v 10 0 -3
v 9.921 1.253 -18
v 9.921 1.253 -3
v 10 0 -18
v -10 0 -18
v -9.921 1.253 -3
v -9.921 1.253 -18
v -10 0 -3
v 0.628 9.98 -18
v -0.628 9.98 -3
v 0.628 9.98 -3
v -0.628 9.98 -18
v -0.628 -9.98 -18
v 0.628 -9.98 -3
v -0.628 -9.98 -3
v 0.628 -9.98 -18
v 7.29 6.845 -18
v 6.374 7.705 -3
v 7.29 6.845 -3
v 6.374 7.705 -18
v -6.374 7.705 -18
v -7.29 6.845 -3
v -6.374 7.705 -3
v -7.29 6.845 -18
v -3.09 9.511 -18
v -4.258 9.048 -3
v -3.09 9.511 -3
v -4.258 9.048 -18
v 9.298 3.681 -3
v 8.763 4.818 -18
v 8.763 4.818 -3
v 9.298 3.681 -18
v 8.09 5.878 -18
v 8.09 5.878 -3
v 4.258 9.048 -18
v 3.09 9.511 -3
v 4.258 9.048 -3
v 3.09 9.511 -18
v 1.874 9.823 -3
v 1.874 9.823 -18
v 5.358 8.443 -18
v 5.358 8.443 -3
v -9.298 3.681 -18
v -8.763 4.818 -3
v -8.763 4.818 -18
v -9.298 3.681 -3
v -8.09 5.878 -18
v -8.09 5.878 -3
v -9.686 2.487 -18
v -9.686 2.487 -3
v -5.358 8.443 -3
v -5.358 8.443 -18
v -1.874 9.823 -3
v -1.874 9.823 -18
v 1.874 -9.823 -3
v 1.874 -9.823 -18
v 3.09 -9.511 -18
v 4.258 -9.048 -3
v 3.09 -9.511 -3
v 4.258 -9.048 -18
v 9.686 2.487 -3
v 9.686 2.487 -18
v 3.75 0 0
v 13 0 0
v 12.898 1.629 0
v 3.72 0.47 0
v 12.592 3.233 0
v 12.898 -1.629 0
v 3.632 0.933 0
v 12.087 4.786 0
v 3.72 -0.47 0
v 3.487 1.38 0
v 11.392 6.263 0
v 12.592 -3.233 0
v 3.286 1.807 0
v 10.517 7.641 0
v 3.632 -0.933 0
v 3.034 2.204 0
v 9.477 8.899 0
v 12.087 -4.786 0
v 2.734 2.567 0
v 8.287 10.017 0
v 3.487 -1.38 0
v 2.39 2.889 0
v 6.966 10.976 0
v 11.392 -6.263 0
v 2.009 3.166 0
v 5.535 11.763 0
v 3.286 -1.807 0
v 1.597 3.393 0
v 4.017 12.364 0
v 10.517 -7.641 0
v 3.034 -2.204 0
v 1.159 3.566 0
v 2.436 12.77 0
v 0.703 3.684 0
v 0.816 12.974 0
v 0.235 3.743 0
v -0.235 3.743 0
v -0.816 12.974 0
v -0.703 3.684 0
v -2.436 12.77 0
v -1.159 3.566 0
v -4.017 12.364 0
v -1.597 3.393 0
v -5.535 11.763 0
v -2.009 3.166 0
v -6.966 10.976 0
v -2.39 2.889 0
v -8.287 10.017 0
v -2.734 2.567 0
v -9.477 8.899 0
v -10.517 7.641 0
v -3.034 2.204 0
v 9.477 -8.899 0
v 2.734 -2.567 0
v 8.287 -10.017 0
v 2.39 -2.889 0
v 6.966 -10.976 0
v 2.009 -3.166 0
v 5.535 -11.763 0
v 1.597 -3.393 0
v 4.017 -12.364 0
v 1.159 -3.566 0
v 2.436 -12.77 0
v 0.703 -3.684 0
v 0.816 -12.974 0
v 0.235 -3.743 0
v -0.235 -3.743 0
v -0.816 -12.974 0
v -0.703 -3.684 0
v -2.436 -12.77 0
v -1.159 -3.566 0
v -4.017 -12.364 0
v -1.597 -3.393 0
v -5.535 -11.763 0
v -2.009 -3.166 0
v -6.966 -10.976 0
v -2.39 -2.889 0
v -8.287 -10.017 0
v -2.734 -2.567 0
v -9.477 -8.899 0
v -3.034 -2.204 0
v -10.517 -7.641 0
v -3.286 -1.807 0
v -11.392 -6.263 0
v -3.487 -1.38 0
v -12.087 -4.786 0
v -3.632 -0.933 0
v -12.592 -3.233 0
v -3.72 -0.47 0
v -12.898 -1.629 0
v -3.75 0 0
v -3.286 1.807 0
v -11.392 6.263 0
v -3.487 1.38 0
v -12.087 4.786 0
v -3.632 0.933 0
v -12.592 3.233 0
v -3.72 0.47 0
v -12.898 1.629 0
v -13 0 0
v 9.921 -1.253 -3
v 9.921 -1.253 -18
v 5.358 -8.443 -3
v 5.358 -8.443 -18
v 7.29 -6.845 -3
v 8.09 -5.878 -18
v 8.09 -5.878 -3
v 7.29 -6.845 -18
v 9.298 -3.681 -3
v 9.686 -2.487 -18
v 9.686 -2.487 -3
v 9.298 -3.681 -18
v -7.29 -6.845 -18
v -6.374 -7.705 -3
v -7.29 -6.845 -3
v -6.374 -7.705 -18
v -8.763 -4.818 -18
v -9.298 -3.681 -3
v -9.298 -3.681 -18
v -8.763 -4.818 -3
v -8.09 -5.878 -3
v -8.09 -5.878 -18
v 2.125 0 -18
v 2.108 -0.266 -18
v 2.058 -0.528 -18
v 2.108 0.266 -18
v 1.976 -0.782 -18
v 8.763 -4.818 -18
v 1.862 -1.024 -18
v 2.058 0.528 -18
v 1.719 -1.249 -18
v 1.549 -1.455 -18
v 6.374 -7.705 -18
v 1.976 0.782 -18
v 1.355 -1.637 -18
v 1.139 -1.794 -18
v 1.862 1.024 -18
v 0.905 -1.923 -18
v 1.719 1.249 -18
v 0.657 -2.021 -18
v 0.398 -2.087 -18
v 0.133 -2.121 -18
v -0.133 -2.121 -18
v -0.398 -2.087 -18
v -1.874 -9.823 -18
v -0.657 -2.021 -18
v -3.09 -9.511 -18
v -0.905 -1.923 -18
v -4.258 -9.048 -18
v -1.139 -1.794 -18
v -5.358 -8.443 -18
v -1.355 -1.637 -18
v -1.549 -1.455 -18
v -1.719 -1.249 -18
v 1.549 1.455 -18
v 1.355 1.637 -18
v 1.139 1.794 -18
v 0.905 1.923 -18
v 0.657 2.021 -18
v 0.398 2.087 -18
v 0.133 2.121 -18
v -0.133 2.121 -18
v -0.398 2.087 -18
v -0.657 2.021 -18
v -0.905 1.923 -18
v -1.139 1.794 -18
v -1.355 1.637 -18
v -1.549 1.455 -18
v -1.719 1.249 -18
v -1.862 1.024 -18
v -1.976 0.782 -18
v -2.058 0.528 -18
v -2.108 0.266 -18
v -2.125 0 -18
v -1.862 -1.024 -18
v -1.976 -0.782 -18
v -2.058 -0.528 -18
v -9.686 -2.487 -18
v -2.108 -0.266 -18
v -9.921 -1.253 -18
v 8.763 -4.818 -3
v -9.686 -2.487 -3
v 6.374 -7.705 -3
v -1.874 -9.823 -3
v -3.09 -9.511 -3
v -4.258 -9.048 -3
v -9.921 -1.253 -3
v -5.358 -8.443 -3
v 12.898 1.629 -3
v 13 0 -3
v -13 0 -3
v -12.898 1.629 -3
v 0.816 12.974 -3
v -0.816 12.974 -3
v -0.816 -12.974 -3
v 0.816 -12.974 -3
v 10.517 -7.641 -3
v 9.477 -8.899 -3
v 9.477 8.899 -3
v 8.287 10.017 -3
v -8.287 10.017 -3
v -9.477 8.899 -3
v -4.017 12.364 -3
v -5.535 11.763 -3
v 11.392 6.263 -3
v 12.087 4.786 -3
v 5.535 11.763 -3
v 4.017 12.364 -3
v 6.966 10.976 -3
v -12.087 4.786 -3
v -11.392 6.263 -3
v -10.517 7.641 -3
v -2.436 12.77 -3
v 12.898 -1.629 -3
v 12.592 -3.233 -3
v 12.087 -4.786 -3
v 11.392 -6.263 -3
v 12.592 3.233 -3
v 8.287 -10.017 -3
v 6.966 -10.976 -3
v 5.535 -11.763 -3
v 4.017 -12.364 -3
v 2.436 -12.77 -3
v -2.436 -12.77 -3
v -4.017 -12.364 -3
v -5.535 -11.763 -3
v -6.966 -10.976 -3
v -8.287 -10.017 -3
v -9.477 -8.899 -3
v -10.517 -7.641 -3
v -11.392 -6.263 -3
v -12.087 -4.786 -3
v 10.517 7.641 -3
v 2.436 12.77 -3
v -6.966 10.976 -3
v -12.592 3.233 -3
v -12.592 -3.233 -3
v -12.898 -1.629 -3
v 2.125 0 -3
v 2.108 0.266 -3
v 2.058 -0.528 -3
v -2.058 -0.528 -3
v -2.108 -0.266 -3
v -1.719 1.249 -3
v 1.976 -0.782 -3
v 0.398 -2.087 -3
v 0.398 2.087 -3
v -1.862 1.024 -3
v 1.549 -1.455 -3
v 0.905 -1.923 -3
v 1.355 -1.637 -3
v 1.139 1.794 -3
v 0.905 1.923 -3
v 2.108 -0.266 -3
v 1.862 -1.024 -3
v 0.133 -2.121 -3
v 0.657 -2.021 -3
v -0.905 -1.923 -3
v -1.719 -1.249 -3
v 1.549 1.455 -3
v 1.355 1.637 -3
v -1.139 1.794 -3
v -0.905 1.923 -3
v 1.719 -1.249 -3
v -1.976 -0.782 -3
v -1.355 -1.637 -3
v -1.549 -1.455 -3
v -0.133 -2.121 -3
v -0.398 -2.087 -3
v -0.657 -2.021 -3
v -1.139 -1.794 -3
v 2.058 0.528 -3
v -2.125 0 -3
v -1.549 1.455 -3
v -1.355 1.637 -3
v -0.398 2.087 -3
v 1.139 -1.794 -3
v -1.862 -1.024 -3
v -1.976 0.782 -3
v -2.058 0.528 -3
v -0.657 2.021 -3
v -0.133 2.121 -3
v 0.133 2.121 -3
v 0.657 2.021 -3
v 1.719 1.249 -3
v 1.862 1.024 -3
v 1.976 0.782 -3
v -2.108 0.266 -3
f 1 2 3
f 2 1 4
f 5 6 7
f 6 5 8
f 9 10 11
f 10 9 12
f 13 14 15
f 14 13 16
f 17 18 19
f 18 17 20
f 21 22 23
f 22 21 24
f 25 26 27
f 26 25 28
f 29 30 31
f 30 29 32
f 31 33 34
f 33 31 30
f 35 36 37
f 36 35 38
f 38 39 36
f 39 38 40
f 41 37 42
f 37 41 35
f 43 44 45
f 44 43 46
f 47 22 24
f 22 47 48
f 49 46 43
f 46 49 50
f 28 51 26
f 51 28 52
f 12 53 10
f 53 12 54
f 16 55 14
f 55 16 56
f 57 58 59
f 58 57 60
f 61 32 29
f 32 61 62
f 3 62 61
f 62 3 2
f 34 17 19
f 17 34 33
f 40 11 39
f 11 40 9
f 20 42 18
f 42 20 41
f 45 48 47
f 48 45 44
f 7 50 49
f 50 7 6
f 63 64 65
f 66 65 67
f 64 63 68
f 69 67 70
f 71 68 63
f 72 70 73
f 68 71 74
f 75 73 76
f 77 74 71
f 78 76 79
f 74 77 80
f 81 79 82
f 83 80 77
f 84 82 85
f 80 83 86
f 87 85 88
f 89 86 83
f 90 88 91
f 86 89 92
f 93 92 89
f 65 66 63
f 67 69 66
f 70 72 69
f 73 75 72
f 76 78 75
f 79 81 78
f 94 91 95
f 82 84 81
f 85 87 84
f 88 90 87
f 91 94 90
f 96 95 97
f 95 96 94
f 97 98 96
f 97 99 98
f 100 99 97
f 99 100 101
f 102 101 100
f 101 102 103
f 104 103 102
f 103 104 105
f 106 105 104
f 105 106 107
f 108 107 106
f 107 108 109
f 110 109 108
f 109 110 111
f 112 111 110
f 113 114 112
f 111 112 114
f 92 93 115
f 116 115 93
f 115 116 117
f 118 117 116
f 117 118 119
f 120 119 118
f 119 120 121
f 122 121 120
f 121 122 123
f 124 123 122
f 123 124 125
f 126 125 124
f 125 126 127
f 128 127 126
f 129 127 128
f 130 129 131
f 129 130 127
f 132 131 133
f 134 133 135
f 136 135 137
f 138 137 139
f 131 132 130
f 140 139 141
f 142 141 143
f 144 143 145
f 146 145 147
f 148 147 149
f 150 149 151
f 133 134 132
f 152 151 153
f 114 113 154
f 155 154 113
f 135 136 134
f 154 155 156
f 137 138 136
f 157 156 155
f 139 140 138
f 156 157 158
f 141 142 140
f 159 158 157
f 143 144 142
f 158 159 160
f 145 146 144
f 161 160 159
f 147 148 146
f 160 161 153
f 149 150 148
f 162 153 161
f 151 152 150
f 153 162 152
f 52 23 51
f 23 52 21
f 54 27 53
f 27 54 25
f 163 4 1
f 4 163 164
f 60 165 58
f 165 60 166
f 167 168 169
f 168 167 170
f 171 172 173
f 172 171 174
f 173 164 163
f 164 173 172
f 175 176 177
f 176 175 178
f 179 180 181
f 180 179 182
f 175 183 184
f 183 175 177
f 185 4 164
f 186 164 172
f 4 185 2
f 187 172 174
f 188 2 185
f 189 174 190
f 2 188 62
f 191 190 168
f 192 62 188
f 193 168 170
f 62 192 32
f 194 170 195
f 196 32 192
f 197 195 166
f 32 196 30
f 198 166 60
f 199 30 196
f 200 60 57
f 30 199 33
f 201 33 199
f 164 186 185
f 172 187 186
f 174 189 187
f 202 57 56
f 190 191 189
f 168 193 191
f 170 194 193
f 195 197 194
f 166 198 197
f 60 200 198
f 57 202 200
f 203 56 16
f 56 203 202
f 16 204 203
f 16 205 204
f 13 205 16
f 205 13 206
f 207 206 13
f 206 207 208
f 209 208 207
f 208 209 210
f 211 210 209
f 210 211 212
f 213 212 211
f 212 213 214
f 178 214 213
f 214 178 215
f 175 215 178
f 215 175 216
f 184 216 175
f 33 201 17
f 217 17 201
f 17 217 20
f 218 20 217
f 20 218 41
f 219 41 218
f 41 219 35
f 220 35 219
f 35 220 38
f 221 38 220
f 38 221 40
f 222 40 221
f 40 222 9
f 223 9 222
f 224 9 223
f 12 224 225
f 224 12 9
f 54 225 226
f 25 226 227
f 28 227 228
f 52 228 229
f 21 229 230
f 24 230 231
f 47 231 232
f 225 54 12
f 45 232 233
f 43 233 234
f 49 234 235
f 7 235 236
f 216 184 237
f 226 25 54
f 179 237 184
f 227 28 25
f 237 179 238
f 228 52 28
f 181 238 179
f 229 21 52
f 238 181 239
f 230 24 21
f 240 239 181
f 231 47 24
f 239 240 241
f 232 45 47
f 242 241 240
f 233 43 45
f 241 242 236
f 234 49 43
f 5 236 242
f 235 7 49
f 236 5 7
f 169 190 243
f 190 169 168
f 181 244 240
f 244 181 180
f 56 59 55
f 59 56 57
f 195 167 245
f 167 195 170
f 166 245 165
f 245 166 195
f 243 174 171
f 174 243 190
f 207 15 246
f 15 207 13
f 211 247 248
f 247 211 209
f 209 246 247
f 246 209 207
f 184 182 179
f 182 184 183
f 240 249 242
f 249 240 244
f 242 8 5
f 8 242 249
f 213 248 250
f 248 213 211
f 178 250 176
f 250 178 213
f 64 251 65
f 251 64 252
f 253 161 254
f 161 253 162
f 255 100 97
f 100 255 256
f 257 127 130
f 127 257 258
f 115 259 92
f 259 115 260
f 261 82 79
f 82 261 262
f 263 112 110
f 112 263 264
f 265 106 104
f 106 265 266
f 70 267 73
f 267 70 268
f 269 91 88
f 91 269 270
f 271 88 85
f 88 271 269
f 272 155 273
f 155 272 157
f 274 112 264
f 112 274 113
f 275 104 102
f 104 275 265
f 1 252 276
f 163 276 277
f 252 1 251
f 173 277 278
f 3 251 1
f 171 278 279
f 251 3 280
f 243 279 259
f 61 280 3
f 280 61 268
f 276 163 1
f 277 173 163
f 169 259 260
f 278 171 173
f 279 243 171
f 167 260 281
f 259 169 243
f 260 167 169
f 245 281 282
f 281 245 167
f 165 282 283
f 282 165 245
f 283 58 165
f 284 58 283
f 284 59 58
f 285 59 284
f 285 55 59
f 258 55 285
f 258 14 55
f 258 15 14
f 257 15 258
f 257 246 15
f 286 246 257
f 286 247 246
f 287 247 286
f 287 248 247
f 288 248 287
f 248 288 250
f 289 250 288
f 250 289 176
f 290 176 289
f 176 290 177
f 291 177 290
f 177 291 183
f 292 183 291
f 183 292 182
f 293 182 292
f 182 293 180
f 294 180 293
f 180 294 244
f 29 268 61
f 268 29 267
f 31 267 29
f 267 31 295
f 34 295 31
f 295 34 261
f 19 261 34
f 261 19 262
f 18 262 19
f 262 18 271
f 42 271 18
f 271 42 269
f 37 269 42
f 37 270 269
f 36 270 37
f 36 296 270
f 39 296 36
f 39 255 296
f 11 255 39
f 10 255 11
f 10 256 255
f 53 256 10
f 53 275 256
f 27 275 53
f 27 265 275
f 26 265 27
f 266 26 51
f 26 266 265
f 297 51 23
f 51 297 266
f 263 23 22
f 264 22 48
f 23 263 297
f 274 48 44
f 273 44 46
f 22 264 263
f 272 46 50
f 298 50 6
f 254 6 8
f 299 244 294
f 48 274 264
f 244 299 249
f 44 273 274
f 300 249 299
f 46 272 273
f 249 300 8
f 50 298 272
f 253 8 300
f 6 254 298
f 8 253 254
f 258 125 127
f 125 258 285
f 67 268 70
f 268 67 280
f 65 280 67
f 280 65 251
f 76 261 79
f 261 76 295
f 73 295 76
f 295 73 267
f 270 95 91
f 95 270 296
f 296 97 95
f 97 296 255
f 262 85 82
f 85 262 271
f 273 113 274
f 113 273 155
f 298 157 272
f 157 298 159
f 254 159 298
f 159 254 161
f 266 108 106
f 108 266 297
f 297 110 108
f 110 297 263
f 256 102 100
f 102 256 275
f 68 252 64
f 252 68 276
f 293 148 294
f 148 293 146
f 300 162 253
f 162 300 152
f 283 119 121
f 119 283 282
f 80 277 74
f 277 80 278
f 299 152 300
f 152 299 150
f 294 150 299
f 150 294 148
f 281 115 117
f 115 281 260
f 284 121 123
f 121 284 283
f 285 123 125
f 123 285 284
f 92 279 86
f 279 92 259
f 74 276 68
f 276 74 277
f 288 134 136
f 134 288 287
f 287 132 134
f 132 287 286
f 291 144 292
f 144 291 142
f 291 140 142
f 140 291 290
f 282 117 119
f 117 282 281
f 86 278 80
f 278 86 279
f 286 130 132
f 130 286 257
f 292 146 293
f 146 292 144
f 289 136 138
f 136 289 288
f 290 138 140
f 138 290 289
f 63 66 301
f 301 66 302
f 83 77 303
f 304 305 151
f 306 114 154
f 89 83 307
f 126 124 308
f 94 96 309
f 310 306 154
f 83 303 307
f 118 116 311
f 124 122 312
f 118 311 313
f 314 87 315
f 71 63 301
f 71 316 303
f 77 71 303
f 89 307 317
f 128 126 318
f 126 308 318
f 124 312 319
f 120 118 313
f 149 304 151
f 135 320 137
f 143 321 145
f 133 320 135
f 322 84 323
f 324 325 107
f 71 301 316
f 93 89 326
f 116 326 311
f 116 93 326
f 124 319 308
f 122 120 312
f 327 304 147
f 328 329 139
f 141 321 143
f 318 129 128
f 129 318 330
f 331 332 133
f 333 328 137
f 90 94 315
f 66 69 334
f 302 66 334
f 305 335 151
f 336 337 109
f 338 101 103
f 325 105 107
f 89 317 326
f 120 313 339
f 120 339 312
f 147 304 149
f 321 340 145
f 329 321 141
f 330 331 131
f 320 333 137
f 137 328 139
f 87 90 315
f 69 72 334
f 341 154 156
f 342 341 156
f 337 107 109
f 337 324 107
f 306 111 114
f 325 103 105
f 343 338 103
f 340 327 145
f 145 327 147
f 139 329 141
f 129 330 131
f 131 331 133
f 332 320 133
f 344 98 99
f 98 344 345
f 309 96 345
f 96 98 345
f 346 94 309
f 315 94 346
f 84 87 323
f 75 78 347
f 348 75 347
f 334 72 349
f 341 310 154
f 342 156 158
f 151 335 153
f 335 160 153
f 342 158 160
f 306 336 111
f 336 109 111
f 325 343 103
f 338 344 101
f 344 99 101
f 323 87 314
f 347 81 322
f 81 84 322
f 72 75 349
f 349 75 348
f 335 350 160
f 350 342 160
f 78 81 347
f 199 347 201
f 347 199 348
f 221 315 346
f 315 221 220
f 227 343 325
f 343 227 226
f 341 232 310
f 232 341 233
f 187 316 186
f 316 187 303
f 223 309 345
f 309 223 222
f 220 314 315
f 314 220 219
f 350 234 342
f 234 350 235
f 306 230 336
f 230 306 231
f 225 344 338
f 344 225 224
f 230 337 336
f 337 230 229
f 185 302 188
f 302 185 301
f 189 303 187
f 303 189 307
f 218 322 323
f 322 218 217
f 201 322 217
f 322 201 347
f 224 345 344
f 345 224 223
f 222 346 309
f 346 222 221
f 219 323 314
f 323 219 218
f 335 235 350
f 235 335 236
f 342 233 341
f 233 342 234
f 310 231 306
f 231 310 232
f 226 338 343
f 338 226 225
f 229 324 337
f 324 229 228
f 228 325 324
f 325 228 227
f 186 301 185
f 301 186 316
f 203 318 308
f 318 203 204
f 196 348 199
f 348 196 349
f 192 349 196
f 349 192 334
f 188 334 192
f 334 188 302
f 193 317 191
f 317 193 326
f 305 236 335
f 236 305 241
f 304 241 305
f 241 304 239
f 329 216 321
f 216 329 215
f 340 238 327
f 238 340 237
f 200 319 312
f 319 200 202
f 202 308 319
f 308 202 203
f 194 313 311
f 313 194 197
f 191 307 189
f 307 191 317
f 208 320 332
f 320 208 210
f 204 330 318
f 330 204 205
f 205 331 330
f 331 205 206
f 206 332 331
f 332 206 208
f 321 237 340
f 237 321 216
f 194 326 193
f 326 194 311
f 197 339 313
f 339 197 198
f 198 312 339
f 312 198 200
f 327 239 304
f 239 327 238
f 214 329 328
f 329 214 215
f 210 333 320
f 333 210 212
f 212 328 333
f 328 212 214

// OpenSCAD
$fn = 50;


difference() {
	union() {
		translate(v = [0, 0, -18.0000000000]) {
			cylinder(h = 18, r = 10.0000000000);
		}
		translate(v = [0, 0, -3.0000000000]) {
			cylinder(h = 3, r = 13.0000000000);
		}
	}
	union() {
		translate(v = [0, 0, 0]) {
			rotate(a = [0, 0, 0]) {
				difference() {
					union() {
						#translate(v = [0, 0, -18.0000000000]) {
							cylinder(h = 18, r = 2.0000000000);
						}
						#translate(v = [0, 0, -3]) {
							cylinder(h = 3, r1 = 2.1250000000, r2 = 3.7500000000);
						}
						#translate(v = [0, 0, -18.0000000000]) {
							cylinder(h = 18, r = 2.1250000000);
						}
						#translate(v = [0, 0, -18.0000000000]) {
							cylinder(h = 18, r = 2.0000000000);
						}
					}
					union();
				}
			}
		}
	}
}
